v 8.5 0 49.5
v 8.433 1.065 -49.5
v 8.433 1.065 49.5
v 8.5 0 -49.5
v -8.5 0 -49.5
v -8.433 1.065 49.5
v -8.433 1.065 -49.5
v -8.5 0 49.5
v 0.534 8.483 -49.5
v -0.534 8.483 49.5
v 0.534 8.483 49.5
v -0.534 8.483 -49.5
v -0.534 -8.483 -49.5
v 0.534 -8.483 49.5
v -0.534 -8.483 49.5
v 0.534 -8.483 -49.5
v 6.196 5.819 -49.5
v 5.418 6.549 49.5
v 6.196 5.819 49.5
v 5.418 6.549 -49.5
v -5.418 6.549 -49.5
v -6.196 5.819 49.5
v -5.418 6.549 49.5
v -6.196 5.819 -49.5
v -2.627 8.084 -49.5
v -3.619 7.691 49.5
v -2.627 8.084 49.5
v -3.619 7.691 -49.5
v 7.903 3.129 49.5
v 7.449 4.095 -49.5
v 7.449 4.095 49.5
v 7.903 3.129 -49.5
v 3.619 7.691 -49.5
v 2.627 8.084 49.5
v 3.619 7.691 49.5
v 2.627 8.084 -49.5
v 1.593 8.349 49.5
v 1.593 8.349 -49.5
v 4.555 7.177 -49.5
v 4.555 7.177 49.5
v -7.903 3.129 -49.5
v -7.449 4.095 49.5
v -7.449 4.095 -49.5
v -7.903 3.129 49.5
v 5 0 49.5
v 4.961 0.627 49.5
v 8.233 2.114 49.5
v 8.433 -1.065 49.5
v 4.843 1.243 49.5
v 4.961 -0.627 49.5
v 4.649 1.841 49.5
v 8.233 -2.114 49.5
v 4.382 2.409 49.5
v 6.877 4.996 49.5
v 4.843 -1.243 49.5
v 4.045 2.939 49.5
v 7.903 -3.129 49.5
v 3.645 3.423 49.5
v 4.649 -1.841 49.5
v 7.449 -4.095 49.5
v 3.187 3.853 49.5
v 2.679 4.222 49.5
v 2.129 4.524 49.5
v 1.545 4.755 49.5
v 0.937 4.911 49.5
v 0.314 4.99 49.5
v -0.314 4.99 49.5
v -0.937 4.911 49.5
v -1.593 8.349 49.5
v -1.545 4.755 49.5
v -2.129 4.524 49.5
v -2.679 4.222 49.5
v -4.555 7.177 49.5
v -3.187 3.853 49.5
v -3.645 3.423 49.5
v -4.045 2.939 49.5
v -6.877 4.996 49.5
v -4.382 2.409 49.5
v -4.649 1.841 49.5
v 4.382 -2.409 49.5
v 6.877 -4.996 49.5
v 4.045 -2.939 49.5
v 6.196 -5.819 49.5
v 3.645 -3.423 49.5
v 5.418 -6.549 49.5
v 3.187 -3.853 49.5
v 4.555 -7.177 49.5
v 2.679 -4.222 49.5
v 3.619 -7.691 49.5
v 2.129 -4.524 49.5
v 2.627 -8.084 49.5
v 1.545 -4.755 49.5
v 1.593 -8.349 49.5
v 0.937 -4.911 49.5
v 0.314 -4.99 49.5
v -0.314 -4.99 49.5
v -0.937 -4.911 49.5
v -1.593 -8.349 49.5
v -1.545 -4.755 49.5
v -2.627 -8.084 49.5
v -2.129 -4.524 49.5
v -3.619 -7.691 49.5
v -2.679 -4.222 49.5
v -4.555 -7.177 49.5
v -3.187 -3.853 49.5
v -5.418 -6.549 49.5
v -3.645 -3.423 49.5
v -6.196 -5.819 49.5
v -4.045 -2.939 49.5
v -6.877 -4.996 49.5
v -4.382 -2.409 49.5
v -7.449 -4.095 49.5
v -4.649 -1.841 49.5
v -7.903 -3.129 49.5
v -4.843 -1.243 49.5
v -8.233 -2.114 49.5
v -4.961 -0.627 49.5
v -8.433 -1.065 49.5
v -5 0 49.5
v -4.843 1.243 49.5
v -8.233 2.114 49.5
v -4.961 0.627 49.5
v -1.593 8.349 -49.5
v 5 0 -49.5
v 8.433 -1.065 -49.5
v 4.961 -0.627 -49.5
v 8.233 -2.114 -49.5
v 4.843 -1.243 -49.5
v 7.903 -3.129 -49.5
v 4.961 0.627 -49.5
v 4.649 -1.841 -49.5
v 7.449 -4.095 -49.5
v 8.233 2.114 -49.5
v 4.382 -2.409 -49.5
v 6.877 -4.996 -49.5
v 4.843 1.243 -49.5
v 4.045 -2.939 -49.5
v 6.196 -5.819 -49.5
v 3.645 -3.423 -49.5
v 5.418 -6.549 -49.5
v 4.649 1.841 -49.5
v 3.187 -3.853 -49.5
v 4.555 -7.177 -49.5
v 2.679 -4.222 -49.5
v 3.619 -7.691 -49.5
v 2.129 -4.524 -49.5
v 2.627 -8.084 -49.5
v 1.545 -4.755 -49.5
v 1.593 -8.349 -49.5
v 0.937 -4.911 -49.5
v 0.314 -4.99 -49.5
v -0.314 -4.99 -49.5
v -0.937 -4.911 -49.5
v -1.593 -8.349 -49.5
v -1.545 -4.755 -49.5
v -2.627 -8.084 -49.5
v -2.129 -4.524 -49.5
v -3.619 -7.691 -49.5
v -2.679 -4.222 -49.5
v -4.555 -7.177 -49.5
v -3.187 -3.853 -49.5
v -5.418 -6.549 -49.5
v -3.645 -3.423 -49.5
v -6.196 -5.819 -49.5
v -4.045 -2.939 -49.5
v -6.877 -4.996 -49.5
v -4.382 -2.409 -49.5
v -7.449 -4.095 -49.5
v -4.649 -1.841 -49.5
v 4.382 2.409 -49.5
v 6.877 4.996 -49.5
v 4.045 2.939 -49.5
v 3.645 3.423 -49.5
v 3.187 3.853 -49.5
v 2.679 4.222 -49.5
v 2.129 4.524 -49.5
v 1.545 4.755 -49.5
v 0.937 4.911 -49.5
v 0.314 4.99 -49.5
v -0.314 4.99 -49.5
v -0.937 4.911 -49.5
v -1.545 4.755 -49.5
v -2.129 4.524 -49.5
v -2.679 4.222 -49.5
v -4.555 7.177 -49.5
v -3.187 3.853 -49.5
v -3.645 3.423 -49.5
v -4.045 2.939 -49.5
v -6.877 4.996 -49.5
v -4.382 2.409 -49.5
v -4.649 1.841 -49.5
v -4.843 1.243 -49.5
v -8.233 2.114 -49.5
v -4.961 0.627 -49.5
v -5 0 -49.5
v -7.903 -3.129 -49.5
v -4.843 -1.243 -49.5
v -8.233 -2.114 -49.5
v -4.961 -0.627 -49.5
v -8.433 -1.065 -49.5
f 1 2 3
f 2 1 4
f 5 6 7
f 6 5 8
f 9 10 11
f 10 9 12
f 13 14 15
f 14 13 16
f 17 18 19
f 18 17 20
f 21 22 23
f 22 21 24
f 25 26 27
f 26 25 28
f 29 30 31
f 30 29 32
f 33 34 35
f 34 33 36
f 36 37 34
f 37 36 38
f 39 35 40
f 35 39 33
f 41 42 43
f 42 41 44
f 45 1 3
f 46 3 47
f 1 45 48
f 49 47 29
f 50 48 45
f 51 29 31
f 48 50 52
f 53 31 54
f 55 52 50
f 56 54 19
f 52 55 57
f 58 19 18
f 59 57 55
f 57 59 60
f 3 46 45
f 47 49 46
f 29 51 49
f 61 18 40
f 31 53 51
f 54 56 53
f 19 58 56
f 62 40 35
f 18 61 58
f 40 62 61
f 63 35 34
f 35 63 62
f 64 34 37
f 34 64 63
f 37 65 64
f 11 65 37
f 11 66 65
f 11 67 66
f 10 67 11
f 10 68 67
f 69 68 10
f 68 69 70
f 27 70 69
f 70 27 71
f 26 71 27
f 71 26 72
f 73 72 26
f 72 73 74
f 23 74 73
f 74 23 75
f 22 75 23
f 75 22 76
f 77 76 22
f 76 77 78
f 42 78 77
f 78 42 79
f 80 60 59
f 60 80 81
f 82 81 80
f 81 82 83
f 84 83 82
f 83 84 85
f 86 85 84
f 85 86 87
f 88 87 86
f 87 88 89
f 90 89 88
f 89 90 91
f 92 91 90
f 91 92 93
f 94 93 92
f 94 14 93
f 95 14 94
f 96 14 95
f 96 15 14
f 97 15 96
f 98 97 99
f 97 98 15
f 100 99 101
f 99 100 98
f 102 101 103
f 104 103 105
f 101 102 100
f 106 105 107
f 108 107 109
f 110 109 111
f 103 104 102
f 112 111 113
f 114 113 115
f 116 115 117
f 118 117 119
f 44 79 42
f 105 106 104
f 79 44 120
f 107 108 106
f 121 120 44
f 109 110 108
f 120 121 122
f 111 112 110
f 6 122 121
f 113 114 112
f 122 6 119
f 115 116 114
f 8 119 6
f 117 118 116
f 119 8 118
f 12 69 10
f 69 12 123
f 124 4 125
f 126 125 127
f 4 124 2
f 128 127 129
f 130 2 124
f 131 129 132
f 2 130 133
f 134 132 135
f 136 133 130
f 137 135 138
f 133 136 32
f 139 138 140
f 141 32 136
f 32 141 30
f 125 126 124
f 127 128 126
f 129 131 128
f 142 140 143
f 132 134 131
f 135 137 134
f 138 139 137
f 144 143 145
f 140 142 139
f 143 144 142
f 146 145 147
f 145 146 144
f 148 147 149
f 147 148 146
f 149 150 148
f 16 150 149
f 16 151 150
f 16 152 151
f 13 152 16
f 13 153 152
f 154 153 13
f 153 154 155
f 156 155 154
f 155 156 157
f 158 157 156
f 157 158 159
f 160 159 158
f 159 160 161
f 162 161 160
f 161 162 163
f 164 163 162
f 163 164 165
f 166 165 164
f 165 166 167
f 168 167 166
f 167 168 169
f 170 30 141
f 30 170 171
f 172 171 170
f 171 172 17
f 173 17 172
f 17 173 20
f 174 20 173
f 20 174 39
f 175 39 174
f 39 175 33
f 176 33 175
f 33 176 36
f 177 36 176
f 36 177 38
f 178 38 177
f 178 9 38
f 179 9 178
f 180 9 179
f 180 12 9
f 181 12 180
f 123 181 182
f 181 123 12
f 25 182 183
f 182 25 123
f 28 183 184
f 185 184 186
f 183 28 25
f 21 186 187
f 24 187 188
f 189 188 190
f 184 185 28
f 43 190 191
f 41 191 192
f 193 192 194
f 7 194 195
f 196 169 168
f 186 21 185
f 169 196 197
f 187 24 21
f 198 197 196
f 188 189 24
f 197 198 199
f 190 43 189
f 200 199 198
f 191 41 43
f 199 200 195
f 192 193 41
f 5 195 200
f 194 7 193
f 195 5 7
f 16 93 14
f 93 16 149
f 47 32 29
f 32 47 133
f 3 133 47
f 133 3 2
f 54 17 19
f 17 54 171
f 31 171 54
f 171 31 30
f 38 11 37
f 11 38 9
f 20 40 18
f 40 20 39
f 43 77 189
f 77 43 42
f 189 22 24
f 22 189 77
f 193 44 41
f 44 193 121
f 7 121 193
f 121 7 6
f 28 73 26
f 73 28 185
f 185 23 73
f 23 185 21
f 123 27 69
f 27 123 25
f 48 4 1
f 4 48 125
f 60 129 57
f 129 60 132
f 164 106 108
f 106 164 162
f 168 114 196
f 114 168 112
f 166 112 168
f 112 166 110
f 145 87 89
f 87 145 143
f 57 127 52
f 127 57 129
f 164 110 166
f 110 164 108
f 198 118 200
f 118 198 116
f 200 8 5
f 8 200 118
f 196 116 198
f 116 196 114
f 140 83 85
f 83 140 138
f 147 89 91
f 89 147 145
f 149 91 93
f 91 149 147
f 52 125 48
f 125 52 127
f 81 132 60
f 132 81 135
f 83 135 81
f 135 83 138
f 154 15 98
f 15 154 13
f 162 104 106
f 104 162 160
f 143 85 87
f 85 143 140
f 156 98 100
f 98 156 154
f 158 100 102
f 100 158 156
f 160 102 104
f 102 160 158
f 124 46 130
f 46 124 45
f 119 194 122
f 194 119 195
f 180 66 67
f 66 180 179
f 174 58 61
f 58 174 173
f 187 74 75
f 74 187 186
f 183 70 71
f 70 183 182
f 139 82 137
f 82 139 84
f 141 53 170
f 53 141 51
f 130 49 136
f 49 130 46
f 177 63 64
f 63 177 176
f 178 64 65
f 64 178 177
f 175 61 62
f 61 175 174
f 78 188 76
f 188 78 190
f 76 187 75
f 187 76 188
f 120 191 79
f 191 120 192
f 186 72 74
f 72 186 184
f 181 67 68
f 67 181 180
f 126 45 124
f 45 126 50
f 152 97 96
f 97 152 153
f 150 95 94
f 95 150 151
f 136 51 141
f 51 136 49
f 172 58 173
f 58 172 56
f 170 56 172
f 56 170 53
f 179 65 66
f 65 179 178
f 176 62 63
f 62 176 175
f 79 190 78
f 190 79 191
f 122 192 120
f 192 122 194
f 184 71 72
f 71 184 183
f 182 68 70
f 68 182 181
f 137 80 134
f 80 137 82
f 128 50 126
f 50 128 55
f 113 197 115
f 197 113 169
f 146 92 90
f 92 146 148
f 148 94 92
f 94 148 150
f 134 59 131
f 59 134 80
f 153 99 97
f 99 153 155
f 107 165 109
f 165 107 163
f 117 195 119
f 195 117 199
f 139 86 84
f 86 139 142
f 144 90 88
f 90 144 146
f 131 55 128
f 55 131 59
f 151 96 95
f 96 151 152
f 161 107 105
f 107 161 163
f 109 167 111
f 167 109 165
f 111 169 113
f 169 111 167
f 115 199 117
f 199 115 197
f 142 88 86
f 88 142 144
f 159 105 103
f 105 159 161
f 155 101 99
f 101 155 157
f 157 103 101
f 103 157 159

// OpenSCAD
$fn = 50;


difference() {
	union() {
		translate(v = [0, 0, -49.5000000000]) {
			cylinder(h = 99, r = 8.5000000000);
		}
	}
	union() {
		translate(v = [0, 0, -100.0000000000]) {
			cylinder(h = 200, r = 5.0000000000);
		}
	}
}
